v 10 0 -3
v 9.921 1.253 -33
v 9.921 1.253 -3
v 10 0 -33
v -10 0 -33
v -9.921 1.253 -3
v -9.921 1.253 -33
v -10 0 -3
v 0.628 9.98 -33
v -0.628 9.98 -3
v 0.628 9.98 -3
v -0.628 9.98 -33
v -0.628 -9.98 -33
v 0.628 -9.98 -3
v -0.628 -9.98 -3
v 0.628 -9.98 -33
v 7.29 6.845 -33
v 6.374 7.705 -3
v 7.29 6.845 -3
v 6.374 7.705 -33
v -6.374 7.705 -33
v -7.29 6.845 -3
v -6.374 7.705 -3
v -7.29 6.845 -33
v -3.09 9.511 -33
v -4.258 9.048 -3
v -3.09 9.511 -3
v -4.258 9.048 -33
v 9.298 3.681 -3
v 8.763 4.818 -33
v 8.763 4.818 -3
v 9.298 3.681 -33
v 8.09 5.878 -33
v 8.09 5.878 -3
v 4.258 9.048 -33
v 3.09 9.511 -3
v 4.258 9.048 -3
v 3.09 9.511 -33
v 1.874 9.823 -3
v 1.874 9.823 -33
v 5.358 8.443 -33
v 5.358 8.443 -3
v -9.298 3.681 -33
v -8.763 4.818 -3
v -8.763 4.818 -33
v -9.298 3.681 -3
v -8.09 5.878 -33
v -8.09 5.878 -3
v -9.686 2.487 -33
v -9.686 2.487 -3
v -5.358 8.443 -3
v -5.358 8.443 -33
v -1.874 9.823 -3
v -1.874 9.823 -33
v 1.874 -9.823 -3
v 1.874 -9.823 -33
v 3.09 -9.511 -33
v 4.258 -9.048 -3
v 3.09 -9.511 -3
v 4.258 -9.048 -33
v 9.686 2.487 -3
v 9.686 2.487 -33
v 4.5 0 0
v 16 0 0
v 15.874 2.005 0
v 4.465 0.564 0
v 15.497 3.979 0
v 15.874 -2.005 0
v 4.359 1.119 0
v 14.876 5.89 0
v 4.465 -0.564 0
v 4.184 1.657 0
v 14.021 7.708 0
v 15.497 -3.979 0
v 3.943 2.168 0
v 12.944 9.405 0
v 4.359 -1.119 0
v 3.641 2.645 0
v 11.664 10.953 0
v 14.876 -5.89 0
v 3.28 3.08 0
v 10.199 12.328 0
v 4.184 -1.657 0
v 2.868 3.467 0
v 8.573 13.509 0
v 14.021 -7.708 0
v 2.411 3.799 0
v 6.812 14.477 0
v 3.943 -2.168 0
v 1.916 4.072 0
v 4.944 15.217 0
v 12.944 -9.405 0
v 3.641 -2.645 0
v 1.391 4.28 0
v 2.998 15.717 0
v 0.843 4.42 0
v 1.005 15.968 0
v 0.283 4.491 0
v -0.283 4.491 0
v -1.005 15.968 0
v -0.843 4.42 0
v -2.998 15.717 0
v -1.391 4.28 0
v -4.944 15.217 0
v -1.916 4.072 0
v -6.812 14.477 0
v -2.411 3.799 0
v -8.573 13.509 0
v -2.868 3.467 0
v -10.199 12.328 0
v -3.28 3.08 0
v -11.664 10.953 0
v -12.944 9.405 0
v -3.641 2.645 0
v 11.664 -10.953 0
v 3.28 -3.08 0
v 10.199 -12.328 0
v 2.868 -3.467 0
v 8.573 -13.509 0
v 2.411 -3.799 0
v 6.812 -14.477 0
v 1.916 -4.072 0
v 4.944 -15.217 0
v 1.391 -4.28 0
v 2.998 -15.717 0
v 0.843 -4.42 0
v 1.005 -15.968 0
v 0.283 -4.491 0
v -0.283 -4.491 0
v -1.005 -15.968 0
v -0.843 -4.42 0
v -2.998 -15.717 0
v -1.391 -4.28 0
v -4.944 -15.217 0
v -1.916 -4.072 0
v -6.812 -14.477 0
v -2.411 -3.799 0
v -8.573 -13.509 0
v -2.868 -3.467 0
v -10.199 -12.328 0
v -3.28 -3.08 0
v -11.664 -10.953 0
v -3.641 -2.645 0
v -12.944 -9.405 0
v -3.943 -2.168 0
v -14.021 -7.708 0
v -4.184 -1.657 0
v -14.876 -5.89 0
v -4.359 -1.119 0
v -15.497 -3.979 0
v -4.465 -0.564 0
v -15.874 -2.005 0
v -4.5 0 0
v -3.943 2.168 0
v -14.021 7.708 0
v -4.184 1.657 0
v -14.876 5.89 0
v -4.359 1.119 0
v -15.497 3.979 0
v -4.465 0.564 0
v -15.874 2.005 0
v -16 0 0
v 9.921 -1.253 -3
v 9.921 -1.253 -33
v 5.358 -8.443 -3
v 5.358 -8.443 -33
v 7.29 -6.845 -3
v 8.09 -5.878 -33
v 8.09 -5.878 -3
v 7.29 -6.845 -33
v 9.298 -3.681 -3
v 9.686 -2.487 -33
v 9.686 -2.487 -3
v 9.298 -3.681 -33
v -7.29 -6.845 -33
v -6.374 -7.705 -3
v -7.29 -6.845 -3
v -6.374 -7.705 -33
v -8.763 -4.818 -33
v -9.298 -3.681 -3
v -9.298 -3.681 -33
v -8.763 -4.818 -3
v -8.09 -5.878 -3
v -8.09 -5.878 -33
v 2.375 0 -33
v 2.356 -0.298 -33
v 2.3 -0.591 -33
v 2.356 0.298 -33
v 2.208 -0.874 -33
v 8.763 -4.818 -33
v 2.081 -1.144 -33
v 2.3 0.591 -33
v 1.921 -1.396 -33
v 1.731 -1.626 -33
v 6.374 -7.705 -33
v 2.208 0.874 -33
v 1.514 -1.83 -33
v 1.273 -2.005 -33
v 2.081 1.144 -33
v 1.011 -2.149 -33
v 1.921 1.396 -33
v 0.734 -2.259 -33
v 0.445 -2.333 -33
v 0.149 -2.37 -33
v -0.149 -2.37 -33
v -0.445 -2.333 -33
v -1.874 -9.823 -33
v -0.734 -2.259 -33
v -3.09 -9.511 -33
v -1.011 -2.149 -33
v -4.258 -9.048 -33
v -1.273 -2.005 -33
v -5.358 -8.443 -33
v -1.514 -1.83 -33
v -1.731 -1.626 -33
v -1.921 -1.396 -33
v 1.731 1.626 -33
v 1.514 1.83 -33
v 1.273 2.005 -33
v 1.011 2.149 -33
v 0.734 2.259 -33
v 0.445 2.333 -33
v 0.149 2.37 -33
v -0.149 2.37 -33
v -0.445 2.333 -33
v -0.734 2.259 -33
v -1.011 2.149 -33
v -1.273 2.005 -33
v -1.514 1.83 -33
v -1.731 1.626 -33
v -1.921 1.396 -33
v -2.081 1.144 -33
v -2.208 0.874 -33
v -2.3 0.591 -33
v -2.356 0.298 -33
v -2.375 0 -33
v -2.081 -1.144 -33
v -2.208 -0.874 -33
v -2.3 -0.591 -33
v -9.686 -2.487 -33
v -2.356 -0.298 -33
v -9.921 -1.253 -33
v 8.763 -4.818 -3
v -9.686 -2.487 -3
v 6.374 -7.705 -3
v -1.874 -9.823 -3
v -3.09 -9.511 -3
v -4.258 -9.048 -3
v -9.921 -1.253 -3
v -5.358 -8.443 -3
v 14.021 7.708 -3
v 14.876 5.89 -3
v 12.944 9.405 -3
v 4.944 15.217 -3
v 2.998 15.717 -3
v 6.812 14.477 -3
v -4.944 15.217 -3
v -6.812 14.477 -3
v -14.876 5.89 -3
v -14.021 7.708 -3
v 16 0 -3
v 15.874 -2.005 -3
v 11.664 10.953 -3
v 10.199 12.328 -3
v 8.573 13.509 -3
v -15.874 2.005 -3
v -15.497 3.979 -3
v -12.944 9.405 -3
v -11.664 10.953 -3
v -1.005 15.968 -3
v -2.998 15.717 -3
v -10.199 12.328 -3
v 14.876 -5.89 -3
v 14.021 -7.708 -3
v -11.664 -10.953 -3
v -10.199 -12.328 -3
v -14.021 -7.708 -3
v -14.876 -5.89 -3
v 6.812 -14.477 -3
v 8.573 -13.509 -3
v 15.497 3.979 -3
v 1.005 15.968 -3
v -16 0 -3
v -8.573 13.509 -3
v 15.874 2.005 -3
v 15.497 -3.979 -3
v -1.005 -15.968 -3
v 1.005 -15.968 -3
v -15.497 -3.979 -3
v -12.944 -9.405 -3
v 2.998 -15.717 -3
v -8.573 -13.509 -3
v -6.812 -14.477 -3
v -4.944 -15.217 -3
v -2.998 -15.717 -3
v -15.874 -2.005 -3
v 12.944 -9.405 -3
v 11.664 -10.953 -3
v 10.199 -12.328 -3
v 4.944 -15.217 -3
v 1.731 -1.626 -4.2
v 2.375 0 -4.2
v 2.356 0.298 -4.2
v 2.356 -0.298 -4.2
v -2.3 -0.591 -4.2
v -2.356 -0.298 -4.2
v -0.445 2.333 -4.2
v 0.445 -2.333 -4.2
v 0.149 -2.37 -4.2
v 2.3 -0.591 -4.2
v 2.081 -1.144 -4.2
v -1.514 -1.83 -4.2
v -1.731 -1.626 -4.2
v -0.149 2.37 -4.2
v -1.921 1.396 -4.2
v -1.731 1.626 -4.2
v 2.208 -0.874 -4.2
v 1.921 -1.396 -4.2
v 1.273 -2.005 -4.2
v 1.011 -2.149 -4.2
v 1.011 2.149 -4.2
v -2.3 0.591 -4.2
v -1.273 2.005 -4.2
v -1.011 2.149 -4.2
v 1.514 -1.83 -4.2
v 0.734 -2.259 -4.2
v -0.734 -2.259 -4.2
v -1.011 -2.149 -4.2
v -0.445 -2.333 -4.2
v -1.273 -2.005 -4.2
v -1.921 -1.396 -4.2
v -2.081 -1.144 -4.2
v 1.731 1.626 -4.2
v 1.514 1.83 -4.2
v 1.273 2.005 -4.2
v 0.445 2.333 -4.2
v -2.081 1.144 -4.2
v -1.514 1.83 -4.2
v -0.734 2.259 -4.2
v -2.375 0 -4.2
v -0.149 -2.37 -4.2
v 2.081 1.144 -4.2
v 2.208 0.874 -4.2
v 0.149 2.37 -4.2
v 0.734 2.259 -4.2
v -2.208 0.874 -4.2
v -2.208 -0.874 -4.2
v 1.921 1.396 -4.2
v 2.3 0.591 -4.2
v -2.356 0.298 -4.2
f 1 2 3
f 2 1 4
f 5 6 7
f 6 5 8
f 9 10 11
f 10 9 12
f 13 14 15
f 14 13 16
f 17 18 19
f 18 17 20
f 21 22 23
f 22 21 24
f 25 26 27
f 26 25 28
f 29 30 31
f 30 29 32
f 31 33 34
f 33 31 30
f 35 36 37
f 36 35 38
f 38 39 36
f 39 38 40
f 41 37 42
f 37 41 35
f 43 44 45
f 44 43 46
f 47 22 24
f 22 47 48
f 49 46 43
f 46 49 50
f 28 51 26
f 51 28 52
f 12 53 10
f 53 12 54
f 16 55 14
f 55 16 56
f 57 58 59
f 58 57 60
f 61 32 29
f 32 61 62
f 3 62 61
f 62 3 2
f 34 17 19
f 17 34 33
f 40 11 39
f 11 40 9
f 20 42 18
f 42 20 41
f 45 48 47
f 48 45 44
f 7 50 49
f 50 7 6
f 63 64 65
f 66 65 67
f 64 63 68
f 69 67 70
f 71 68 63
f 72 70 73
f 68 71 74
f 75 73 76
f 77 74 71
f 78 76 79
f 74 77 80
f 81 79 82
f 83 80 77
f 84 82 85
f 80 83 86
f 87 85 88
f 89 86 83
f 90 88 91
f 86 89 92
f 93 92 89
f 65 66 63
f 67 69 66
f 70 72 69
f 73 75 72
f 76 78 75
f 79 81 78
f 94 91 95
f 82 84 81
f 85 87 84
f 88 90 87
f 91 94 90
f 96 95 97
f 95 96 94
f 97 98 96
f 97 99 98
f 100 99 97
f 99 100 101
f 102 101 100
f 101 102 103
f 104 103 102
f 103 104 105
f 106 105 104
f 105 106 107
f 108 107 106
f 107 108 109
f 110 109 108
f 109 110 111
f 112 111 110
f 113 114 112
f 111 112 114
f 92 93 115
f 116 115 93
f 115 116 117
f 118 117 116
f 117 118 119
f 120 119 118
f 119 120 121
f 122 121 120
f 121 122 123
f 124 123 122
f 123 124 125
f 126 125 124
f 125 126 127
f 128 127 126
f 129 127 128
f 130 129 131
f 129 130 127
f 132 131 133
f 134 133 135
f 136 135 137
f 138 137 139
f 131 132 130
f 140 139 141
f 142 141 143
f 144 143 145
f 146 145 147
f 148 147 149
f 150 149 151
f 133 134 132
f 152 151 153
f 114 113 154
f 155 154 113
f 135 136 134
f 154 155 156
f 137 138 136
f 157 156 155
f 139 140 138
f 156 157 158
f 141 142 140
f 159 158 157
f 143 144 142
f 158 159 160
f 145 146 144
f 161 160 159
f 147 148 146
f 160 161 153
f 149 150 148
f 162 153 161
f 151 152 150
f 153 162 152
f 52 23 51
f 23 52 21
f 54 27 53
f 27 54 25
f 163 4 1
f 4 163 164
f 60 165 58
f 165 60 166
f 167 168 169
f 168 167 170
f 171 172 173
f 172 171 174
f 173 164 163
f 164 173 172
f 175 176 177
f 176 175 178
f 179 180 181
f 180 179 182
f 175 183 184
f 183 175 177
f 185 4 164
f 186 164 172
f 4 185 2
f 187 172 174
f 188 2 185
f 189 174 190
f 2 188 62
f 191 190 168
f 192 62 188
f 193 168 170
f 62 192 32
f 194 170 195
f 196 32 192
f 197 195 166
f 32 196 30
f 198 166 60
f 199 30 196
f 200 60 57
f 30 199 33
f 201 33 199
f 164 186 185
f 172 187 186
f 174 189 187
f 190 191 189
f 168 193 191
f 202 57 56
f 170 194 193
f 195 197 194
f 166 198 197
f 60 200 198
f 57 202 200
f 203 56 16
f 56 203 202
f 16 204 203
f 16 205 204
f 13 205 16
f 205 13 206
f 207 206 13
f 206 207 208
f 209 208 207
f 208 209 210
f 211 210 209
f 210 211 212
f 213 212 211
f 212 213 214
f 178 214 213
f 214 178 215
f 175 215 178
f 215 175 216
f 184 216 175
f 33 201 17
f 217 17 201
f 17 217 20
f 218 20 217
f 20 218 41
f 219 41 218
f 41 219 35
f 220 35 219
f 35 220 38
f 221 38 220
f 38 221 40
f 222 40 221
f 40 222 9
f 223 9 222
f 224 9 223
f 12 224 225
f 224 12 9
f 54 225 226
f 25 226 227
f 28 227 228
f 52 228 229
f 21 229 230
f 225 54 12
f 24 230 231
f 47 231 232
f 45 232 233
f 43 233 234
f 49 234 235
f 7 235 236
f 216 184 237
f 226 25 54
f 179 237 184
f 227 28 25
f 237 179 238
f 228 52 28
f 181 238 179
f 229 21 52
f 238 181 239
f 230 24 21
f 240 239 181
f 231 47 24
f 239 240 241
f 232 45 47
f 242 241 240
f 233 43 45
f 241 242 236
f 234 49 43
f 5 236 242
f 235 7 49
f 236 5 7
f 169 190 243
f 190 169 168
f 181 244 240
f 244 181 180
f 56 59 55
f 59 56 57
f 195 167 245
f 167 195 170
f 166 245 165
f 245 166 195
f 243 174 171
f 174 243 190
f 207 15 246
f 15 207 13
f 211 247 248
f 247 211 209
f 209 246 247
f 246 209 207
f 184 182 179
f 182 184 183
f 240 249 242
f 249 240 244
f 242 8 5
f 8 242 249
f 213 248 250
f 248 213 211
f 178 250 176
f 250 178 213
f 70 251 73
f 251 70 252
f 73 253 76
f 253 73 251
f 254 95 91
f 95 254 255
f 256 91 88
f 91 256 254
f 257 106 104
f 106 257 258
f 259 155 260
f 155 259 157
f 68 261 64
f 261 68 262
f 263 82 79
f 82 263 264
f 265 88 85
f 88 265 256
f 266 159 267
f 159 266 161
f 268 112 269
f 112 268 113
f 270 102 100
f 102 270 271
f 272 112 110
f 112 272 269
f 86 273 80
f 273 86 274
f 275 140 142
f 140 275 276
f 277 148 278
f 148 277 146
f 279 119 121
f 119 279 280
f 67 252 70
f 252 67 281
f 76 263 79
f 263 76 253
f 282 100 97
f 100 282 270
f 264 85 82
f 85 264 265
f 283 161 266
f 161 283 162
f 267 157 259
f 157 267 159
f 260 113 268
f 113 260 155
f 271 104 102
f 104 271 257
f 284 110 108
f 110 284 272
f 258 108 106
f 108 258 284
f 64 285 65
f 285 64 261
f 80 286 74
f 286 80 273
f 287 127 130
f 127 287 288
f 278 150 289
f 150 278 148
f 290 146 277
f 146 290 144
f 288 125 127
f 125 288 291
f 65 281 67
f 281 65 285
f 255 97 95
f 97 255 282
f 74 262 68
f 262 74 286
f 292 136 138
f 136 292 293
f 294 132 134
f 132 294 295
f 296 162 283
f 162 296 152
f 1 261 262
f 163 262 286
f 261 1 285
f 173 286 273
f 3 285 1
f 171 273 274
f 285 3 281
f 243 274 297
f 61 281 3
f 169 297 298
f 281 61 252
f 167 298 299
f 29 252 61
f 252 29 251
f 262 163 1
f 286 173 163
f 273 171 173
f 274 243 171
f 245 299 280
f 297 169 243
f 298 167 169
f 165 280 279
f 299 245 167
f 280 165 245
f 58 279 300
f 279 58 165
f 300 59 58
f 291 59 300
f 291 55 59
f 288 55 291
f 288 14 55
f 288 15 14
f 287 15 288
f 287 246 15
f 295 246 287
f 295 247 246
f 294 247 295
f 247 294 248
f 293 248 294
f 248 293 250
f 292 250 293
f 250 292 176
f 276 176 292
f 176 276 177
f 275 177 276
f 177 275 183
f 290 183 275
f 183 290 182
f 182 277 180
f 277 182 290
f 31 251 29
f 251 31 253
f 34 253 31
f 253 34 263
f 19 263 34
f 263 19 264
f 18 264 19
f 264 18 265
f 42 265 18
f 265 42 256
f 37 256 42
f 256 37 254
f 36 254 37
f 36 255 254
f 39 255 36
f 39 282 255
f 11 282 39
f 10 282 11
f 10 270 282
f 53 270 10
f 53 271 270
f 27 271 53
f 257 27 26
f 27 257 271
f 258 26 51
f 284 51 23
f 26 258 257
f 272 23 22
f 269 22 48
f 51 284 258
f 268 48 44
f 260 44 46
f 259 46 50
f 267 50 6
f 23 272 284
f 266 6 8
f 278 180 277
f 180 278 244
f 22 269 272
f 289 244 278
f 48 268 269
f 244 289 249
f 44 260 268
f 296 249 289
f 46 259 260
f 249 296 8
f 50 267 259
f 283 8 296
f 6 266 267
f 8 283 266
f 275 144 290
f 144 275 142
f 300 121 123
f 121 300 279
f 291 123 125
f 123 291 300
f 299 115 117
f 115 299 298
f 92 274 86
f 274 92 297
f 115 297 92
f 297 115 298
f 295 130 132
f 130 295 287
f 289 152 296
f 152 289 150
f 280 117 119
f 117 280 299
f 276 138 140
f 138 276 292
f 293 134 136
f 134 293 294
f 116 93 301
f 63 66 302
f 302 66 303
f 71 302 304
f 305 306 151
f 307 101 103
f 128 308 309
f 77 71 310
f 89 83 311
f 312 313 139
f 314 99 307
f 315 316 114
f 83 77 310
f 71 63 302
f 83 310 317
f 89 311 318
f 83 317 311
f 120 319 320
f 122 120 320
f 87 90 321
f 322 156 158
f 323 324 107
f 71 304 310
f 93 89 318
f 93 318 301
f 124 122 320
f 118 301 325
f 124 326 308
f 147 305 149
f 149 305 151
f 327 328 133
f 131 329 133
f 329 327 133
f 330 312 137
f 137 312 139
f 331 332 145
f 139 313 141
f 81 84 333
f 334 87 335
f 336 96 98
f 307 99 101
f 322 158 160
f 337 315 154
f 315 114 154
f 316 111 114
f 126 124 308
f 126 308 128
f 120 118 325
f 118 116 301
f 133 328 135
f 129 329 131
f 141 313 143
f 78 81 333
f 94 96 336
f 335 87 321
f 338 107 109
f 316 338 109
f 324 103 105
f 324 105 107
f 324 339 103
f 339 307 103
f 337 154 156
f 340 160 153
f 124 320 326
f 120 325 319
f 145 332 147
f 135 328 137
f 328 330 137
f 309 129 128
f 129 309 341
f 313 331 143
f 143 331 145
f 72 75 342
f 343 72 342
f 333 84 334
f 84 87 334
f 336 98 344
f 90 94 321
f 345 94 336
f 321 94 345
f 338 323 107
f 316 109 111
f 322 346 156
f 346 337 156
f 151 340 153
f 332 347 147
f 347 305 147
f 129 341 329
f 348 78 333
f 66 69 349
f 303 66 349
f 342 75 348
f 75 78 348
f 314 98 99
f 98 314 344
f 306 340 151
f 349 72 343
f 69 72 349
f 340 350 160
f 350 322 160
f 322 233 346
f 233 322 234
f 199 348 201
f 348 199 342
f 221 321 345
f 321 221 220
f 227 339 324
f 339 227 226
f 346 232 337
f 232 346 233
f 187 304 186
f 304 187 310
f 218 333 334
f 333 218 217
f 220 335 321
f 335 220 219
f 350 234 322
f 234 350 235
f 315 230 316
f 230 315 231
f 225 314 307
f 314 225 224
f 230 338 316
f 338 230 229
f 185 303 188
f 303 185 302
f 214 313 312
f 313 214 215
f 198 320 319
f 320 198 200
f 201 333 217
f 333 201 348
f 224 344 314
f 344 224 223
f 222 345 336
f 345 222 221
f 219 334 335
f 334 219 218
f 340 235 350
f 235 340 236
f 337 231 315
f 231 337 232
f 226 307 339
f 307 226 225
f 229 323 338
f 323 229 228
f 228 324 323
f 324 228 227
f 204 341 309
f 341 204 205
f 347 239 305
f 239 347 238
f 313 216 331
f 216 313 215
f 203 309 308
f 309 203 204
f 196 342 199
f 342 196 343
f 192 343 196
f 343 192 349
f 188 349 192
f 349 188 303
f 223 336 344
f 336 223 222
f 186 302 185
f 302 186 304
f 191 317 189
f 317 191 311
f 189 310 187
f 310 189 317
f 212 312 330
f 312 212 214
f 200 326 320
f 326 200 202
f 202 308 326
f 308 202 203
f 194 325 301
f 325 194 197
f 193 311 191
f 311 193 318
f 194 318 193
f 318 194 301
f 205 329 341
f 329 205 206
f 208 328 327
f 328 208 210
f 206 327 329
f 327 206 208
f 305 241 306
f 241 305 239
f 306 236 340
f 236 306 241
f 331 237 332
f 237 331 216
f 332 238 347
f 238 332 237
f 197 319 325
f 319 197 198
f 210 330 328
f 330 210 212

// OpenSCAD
$fn = 50;


difference() {
	union() {
		translate(v = [0, 0, -33.0000000000]) {
			cylinder(h = 33, r = 10.0000000000);
		}
		translate(v = [0, 0, -3.0000000000]) {
			cylinder(h = 3, r = 16.0000000000);
		}
	}
	union() {
		translate(v = [0, 0, 0]) {
			rotate(a = [0, 0, 0]) {
				difference() {
					union() {
						#translate(v = [0, 0, -33.0000000000]) {
							cylinder(h = 33, r = 2.2500000000);
						}
						#translate(v = [0, 0, -4.2000000000]) {
							cylinder(h = 4.2000000000, r = 10.0000000000, r1 = 2.3750000000, r2 = 4.5000000000);
						}
						#translate(v = [0, 0, -33.0000000000]) {
							cylinder(h = 33, r = 2.3750000000);
						}
						#translate(v = [0, 0, -33.0000000000]) {
							cylinder(h = 33, r = 2.2500000000);
						}
					}
					union();
				}
			}
		}
	}
}
